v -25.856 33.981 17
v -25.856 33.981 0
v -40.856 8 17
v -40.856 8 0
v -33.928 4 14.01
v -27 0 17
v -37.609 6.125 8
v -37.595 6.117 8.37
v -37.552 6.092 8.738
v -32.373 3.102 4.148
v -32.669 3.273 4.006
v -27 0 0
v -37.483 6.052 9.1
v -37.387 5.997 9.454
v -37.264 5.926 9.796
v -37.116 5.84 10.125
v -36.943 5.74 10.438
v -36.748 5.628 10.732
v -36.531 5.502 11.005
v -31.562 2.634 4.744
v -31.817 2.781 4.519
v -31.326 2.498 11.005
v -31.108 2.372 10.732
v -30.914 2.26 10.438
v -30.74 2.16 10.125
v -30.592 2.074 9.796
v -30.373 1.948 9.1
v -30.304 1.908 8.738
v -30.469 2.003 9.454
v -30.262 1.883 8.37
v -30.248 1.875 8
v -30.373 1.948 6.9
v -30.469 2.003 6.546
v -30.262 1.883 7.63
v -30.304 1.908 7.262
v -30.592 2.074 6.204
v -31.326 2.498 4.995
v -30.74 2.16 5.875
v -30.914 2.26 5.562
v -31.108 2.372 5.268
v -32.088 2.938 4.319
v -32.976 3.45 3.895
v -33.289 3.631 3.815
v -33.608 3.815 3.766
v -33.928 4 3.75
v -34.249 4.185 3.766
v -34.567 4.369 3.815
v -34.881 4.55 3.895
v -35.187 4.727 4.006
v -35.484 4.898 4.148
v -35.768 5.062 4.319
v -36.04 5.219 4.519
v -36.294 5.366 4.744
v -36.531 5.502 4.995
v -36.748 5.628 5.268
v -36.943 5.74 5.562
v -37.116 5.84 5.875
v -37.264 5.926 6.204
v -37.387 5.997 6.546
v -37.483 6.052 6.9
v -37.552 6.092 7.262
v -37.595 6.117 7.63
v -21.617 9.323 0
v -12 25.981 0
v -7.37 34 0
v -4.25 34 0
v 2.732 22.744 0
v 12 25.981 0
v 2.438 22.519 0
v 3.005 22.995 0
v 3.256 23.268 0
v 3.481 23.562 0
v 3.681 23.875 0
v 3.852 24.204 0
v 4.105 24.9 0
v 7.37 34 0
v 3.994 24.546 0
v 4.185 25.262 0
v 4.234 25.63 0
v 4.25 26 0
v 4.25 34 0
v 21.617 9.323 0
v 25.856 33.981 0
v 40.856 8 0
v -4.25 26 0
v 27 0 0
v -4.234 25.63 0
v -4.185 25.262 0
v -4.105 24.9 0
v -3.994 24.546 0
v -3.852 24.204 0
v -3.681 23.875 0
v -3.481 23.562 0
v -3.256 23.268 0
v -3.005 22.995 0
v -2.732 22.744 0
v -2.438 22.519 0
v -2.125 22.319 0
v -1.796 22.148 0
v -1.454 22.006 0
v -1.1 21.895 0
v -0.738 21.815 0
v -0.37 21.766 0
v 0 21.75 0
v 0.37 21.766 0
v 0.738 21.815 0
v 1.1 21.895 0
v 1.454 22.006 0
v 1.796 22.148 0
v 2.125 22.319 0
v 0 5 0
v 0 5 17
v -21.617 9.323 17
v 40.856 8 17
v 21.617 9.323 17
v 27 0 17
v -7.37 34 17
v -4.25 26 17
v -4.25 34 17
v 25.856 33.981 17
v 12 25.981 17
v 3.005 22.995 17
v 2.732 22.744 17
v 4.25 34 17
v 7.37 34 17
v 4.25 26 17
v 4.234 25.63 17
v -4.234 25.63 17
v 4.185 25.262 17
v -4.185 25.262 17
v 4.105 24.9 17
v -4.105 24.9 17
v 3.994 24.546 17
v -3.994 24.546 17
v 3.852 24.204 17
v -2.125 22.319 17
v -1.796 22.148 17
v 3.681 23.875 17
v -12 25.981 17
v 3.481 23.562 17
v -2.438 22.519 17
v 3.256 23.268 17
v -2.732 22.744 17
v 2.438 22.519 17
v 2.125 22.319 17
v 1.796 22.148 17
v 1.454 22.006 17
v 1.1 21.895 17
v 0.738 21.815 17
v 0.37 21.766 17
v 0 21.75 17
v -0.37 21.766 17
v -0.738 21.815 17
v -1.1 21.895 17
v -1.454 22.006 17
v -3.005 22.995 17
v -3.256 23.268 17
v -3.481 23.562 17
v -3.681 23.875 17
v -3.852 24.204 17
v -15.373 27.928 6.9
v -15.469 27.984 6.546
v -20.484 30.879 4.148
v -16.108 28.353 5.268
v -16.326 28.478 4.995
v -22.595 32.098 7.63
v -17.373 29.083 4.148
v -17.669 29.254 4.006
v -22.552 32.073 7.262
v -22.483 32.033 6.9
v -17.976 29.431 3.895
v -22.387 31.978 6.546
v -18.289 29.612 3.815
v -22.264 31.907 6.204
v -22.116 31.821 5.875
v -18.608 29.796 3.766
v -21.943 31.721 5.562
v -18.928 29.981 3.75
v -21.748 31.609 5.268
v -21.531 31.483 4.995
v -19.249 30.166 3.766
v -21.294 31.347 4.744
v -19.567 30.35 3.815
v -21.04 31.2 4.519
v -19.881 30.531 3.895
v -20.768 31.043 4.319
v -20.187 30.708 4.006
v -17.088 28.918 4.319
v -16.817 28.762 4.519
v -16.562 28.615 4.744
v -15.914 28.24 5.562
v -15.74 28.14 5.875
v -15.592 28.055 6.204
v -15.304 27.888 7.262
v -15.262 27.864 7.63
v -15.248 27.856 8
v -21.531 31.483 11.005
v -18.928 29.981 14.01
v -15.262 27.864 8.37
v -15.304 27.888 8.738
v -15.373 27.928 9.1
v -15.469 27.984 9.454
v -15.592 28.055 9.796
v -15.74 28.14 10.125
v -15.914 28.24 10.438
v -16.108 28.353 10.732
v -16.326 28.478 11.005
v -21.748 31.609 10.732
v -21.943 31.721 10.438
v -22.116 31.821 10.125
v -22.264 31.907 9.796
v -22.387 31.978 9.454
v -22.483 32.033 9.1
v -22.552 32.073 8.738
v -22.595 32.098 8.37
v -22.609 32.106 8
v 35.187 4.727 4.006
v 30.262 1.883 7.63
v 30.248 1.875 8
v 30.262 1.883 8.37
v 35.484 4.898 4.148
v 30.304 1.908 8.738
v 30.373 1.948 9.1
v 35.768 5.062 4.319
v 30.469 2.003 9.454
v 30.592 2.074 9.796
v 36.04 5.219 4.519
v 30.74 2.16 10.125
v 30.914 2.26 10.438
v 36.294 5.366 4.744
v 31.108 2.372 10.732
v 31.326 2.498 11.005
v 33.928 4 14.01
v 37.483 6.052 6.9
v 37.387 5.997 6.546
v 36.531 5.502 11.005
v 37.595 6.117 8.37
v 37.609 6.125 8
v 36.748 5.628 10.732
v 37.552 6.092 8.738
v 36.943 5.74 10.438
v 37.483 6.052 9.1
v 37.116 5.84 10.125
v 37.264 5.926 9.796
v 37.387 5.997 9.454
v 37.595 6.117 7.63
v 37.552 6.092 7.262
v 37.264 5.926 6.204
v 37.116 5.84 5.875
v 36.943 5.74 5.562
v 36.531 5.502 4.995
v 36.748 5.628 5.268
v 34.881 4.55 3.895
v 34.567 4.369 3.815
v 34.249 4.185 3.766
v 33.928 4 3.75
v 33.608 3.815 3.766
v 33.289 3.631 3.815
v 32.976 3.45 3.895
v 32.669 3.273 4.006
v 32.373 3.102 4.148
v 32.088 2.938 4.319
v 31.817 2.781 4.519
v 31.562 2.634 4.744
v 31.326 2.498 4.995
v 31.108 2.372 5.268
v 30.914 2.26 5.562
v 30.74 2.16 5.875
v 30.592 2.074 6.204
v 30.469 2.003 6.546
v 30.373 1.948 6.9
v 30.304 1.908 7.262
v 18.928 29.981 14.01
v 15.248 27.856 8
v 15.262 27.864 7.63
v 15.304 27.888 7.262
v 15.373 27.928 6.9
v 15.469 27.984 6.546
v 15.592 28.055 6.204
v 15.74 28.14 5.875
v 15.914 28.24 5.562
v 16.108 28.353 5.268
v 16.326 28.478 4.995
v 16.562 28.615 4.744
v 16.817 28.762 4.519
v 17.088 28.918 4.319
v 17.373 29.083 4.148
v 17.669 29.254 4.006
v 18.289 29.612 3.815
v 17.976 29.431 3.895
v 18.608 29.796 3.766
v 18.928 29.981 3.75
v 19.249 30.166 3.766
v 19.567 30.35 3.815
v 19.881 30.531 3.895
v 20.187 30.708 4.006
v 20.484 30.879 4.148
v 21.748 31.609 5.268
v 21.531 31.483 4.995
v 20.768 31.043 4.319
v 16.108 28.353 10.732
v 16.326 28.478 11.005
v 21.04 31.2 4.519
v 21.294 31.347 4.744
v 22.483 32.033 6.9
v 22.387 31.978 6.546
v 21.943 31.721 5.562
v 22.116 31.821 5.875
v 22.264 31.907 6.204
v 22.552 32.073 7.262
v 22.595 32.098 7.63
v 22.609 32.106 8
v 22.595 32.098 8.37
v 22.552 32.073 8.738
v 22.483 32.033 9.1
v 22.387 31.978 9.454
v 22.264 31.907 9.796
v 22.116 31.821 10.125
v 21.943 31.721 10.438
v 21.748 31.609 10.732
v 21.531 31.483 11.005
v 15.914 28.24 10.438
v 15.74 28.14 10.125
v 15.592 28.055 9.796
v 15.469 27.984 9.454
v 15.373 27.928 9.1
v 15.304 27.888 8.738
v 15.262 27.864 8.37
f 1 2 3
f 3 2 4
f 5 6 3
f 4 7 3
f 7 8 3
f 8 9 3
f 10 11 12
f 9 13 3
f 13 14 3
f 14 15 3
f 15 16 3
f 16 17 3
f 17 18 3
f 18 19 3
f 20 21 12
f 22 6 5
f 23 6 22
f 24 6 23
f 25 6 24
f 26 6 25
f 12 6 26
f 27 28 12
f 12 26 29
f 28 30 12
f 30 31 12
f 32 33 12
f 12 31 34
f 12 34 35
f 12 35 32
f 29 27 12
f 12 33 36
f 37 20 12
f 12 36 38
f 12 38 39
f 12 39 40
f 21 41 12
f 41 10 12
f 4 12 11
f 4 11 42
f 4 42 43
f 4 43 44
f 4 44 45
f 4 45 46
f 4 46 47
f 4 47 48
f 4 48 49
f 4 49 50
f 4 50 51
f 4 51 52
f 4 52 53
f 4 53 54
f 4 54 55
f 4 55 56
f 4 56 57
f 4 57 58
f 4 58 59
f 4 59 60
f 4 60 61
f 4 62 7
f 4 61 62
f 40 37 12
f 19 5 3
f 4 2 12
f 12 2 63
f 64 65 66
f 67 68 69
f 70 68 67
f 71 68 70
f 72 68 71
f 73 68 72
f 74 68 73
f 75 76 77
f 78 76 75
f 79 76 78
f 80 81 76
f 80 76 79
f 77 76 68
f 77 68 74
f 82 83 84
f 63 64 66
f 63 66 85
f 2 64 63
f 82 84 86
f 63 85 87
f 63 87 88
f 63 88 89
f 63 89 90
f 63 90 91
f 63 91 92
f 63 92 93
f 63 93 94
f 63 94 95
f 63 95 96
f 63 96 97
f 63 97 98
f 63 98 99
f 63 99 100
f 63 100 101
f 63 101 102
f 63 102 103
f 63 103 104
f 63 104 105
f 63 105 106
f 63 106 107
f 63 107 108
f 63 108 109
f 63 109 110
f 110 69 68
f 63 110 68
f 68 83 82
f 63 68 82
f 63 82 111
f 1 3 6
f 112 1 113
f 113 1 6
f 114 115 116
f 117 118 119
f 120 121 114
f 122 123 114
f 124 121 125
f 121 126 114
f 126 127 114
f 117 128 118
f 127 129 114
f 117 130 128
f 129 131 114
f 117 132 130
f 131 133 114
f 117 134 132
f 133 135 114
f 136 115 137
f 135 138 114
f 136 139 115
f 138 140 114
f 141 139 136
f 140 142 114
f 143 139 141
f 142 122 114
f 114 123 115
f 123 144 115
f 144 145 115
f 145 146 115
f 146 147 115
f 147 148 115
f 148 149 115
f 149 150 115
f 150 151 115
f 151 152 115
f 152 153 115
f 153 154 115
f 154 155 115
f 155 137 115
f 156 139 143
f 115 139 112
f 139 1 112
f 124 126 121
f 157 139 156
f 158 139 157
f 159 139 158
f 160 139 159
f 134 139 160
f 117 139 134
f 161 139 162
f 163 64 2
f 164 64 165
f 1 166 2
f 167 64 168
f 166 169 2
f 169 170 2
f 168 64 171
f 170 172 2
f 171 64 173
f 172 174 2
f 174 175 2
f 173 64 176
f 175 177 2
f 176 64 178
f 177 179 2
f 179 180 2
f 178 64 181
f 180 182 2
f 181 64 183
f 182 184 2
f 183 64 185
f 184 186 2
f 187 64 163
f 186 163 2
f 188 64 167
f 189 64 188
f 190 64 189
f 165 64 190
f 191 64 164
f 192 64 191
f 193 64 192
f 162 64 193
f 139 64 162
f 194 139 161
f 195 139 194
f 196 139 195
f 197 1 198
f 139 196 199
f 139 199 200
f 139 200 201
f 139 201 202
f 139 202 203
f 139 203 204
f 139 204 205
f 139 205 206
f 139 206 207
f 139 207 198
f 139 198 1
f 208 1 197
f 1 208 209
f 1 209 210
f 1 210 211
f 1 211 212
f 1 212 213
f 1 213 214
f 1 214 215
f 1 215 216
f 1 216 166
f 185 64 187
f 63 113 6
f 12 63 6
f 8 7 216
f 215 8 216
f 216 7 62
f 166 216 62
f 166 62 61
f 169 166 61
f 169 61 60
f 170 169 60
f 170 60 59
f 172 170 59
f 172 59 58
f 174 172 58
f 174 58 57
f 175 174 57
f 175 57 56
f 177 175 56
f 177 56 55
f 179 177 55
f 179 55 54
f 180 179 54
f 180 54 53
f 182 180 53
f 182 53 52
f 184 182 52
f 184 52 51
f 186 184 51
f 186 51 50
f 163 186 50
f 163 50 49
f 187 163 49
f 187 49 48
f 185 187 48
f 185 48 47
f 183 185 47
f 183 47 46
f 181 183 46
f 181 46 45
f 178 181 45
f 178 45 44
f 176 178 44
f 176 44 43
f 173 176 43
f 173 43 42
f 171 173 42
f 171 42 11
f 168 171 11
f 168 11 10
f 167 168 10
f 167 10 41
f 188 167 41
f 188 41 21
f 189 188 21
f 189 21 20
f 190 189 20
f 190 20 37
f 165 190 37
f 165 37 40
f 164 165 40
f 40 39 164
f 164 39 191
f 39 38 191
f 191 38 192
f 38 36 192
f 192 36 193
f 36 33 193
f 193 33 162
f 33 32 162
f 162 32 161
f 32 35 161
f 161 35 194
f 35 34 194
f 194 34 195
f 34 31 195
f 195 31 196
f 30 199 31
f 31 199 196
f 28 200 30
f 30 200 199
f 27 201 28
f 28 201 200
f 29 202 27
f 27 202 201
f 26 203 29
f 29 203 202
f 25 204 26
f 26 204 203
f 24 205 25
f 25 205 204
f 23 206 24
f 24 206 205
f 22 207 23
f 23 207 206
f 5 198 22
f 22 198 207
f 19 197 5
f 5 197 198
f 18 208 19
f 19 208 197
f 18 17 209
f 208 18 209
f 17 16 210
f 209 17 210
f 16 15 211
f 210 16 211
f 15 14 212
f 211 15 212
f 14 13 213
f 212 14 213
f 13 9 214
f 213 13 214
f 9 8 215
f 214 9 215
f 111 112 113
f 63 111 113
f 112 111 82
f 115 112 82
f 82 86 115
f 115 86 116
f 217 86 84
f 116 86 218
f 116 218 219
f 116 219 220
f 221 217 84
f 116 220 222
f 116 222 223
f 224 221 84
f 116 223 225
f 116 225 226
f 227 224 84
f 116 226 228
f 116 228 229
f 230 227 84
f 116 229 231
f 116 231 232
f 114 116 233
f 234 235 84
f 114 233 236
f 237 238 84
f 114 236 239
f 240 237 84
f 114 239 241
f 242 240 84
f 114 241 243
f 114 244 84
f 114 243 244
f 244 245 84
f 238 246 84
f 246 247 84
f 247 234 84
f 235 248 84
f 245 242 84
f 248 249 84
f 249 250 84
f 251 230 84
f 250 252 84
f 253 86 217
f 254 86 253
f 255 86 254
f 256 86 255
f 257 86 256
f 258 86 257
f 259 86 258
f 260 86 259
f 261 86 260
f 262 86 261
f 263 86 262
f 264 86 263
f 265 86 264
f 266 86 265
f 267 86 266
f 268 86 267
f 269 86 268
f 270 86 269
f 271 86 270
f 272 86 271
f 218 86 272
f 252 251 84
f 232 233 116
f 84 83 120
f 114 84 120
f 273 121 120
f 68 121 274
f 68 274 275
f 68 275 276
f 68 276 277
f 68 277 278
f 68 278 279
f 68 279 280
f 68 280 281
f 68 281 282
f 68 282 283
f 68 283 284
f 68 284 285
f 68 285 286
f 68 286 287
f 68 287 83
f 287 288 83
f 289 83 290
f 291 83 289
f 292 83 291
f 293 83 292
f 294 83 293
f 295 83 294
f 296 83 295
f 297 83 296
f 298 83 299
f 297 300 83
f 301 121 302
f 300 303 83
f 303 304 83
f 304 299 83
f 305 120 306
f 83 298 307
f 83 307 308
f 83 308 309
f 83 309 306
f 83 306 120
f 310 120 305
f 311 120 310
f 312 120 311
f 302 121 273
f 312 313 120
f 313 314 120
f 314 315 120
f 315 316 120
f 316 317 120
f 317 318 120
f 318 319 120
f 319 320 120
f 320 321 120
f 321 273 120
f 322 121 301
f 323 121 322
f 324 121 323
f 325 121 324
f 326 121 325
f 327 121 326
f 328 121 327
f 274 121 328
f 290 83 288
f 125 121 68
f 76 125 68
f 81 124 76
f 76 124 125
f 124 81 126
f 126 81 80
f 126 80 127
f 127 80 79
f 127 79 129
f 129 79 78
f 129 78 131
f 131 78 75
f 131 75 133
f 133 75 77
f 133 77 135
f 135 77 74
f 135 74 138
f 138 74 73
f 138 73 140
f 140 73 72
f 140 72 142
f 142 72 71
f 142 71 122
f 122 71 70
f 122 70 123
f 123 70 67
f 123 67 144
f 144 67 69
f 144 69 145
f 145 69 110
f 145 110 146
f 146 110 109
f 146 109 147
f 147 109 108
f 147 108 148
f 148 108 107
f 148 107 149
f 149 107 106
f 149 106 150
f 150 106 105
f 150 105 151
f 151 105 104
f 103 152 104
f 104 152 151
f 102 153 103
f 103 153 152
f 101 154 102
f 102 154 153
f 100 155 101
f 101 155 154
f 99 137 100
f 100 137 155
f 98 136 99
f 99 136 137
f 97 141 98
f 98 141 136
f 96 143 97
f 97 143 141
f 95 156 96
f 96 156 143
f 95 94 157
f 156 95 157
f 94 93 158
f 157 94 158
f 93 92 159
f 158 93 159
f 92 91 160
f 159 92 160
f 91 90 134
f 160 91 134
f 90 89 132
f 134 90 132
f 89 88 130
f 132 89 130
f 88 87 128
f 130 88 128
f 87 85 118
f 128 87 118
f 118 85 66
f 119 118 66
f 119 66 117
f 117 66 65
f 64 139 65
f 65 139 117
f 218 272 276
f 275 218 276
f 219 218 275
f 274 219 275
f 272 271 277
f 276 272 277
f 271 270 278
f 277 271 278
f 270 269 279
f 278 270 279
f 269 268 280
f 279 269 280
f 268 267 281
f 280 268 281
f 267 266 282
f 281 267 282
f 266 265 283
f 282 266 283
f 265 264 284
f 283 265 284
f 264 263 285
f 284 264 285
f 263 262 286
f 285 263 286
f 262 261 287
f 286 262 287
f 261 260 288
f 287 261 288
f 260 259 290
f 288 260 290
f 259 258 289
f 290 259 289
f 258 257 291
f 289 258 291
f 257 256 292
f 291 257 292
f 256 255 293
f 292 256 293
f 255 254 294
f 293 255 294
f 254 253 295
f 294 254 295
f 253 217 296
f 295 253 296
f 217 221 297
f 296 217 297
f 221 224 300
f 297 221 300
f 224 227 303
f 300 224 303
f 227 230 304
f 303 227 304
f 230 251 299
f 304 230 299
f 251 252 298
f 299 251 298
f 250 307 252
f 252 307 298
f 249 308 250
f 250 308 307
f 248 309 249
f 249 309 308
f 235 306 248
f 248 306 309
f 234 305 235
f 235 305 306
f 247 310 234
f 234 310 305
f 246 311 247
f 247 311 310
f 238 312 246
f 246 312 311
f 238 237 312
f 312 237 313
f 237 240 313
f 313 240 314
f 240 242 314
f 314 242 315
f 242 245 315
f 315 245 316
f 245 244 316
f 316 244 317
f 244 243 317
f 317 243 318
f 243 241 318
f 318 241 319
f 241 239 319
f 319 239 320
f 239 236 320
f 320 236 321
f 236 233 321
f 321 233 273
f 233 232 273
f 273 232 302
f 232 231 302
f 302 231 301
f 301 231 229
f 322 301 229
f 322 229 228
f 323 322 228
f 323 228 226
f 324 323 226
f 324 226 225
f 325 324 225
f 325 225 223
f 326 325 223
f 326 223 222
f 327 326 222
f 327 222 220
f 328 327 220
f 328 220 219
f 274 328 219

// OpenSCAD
$fn=72;

mu=0.01;

leg_angle=35;
tot_z=17;

module drop(h,r)
{
	linear_extrude(height=h)
	{
		union()
		{
			circle(r);
			rotate([0,0,-135]) square(r);
		}
	}
}

module leg()
{
	rotate([0,0,30])
	{
		union()
		{
			difference()
			{
				cube([16,30,tot_z]);
				translate([8,-mu,8]) rotate([-90,0,0]) drop(30+2*mu, 4.25);
			}
			translate([-17,25,0]) cube([17,5,tot_z]);
		}
	}
}

module support()
{
	difference()
	{
		cube([12,14,tot_z]);
		translate([0,6,-mu]) cylinder(tot_z+2*mu,4.25,4.25);
		translate([-mu,6,-mu]) cube([4.25+mu,10,tot_z+2*mu]);
	}
}

module fill_polygon()
{
	linear_extrude(height=tot_z)
	{
		polygon(points=[[0,21],[18,23],[25,10],[0,5]], paths=[[0,1,2,3]]);
	}
}

module half()
{
	difference()
	{
		union()
		{
			translate([15+12,0,0]) leg();
			translate([0,20,0]) support();
			fill_polygon();
		}
		
		translate([15+12,0,0]) rotate([0,0,30]) 
			translate([0,30,-mu]) cube([16,30,tot_z+2*mu]);
	}
}


half();
mirror([1,0,0]) half();
